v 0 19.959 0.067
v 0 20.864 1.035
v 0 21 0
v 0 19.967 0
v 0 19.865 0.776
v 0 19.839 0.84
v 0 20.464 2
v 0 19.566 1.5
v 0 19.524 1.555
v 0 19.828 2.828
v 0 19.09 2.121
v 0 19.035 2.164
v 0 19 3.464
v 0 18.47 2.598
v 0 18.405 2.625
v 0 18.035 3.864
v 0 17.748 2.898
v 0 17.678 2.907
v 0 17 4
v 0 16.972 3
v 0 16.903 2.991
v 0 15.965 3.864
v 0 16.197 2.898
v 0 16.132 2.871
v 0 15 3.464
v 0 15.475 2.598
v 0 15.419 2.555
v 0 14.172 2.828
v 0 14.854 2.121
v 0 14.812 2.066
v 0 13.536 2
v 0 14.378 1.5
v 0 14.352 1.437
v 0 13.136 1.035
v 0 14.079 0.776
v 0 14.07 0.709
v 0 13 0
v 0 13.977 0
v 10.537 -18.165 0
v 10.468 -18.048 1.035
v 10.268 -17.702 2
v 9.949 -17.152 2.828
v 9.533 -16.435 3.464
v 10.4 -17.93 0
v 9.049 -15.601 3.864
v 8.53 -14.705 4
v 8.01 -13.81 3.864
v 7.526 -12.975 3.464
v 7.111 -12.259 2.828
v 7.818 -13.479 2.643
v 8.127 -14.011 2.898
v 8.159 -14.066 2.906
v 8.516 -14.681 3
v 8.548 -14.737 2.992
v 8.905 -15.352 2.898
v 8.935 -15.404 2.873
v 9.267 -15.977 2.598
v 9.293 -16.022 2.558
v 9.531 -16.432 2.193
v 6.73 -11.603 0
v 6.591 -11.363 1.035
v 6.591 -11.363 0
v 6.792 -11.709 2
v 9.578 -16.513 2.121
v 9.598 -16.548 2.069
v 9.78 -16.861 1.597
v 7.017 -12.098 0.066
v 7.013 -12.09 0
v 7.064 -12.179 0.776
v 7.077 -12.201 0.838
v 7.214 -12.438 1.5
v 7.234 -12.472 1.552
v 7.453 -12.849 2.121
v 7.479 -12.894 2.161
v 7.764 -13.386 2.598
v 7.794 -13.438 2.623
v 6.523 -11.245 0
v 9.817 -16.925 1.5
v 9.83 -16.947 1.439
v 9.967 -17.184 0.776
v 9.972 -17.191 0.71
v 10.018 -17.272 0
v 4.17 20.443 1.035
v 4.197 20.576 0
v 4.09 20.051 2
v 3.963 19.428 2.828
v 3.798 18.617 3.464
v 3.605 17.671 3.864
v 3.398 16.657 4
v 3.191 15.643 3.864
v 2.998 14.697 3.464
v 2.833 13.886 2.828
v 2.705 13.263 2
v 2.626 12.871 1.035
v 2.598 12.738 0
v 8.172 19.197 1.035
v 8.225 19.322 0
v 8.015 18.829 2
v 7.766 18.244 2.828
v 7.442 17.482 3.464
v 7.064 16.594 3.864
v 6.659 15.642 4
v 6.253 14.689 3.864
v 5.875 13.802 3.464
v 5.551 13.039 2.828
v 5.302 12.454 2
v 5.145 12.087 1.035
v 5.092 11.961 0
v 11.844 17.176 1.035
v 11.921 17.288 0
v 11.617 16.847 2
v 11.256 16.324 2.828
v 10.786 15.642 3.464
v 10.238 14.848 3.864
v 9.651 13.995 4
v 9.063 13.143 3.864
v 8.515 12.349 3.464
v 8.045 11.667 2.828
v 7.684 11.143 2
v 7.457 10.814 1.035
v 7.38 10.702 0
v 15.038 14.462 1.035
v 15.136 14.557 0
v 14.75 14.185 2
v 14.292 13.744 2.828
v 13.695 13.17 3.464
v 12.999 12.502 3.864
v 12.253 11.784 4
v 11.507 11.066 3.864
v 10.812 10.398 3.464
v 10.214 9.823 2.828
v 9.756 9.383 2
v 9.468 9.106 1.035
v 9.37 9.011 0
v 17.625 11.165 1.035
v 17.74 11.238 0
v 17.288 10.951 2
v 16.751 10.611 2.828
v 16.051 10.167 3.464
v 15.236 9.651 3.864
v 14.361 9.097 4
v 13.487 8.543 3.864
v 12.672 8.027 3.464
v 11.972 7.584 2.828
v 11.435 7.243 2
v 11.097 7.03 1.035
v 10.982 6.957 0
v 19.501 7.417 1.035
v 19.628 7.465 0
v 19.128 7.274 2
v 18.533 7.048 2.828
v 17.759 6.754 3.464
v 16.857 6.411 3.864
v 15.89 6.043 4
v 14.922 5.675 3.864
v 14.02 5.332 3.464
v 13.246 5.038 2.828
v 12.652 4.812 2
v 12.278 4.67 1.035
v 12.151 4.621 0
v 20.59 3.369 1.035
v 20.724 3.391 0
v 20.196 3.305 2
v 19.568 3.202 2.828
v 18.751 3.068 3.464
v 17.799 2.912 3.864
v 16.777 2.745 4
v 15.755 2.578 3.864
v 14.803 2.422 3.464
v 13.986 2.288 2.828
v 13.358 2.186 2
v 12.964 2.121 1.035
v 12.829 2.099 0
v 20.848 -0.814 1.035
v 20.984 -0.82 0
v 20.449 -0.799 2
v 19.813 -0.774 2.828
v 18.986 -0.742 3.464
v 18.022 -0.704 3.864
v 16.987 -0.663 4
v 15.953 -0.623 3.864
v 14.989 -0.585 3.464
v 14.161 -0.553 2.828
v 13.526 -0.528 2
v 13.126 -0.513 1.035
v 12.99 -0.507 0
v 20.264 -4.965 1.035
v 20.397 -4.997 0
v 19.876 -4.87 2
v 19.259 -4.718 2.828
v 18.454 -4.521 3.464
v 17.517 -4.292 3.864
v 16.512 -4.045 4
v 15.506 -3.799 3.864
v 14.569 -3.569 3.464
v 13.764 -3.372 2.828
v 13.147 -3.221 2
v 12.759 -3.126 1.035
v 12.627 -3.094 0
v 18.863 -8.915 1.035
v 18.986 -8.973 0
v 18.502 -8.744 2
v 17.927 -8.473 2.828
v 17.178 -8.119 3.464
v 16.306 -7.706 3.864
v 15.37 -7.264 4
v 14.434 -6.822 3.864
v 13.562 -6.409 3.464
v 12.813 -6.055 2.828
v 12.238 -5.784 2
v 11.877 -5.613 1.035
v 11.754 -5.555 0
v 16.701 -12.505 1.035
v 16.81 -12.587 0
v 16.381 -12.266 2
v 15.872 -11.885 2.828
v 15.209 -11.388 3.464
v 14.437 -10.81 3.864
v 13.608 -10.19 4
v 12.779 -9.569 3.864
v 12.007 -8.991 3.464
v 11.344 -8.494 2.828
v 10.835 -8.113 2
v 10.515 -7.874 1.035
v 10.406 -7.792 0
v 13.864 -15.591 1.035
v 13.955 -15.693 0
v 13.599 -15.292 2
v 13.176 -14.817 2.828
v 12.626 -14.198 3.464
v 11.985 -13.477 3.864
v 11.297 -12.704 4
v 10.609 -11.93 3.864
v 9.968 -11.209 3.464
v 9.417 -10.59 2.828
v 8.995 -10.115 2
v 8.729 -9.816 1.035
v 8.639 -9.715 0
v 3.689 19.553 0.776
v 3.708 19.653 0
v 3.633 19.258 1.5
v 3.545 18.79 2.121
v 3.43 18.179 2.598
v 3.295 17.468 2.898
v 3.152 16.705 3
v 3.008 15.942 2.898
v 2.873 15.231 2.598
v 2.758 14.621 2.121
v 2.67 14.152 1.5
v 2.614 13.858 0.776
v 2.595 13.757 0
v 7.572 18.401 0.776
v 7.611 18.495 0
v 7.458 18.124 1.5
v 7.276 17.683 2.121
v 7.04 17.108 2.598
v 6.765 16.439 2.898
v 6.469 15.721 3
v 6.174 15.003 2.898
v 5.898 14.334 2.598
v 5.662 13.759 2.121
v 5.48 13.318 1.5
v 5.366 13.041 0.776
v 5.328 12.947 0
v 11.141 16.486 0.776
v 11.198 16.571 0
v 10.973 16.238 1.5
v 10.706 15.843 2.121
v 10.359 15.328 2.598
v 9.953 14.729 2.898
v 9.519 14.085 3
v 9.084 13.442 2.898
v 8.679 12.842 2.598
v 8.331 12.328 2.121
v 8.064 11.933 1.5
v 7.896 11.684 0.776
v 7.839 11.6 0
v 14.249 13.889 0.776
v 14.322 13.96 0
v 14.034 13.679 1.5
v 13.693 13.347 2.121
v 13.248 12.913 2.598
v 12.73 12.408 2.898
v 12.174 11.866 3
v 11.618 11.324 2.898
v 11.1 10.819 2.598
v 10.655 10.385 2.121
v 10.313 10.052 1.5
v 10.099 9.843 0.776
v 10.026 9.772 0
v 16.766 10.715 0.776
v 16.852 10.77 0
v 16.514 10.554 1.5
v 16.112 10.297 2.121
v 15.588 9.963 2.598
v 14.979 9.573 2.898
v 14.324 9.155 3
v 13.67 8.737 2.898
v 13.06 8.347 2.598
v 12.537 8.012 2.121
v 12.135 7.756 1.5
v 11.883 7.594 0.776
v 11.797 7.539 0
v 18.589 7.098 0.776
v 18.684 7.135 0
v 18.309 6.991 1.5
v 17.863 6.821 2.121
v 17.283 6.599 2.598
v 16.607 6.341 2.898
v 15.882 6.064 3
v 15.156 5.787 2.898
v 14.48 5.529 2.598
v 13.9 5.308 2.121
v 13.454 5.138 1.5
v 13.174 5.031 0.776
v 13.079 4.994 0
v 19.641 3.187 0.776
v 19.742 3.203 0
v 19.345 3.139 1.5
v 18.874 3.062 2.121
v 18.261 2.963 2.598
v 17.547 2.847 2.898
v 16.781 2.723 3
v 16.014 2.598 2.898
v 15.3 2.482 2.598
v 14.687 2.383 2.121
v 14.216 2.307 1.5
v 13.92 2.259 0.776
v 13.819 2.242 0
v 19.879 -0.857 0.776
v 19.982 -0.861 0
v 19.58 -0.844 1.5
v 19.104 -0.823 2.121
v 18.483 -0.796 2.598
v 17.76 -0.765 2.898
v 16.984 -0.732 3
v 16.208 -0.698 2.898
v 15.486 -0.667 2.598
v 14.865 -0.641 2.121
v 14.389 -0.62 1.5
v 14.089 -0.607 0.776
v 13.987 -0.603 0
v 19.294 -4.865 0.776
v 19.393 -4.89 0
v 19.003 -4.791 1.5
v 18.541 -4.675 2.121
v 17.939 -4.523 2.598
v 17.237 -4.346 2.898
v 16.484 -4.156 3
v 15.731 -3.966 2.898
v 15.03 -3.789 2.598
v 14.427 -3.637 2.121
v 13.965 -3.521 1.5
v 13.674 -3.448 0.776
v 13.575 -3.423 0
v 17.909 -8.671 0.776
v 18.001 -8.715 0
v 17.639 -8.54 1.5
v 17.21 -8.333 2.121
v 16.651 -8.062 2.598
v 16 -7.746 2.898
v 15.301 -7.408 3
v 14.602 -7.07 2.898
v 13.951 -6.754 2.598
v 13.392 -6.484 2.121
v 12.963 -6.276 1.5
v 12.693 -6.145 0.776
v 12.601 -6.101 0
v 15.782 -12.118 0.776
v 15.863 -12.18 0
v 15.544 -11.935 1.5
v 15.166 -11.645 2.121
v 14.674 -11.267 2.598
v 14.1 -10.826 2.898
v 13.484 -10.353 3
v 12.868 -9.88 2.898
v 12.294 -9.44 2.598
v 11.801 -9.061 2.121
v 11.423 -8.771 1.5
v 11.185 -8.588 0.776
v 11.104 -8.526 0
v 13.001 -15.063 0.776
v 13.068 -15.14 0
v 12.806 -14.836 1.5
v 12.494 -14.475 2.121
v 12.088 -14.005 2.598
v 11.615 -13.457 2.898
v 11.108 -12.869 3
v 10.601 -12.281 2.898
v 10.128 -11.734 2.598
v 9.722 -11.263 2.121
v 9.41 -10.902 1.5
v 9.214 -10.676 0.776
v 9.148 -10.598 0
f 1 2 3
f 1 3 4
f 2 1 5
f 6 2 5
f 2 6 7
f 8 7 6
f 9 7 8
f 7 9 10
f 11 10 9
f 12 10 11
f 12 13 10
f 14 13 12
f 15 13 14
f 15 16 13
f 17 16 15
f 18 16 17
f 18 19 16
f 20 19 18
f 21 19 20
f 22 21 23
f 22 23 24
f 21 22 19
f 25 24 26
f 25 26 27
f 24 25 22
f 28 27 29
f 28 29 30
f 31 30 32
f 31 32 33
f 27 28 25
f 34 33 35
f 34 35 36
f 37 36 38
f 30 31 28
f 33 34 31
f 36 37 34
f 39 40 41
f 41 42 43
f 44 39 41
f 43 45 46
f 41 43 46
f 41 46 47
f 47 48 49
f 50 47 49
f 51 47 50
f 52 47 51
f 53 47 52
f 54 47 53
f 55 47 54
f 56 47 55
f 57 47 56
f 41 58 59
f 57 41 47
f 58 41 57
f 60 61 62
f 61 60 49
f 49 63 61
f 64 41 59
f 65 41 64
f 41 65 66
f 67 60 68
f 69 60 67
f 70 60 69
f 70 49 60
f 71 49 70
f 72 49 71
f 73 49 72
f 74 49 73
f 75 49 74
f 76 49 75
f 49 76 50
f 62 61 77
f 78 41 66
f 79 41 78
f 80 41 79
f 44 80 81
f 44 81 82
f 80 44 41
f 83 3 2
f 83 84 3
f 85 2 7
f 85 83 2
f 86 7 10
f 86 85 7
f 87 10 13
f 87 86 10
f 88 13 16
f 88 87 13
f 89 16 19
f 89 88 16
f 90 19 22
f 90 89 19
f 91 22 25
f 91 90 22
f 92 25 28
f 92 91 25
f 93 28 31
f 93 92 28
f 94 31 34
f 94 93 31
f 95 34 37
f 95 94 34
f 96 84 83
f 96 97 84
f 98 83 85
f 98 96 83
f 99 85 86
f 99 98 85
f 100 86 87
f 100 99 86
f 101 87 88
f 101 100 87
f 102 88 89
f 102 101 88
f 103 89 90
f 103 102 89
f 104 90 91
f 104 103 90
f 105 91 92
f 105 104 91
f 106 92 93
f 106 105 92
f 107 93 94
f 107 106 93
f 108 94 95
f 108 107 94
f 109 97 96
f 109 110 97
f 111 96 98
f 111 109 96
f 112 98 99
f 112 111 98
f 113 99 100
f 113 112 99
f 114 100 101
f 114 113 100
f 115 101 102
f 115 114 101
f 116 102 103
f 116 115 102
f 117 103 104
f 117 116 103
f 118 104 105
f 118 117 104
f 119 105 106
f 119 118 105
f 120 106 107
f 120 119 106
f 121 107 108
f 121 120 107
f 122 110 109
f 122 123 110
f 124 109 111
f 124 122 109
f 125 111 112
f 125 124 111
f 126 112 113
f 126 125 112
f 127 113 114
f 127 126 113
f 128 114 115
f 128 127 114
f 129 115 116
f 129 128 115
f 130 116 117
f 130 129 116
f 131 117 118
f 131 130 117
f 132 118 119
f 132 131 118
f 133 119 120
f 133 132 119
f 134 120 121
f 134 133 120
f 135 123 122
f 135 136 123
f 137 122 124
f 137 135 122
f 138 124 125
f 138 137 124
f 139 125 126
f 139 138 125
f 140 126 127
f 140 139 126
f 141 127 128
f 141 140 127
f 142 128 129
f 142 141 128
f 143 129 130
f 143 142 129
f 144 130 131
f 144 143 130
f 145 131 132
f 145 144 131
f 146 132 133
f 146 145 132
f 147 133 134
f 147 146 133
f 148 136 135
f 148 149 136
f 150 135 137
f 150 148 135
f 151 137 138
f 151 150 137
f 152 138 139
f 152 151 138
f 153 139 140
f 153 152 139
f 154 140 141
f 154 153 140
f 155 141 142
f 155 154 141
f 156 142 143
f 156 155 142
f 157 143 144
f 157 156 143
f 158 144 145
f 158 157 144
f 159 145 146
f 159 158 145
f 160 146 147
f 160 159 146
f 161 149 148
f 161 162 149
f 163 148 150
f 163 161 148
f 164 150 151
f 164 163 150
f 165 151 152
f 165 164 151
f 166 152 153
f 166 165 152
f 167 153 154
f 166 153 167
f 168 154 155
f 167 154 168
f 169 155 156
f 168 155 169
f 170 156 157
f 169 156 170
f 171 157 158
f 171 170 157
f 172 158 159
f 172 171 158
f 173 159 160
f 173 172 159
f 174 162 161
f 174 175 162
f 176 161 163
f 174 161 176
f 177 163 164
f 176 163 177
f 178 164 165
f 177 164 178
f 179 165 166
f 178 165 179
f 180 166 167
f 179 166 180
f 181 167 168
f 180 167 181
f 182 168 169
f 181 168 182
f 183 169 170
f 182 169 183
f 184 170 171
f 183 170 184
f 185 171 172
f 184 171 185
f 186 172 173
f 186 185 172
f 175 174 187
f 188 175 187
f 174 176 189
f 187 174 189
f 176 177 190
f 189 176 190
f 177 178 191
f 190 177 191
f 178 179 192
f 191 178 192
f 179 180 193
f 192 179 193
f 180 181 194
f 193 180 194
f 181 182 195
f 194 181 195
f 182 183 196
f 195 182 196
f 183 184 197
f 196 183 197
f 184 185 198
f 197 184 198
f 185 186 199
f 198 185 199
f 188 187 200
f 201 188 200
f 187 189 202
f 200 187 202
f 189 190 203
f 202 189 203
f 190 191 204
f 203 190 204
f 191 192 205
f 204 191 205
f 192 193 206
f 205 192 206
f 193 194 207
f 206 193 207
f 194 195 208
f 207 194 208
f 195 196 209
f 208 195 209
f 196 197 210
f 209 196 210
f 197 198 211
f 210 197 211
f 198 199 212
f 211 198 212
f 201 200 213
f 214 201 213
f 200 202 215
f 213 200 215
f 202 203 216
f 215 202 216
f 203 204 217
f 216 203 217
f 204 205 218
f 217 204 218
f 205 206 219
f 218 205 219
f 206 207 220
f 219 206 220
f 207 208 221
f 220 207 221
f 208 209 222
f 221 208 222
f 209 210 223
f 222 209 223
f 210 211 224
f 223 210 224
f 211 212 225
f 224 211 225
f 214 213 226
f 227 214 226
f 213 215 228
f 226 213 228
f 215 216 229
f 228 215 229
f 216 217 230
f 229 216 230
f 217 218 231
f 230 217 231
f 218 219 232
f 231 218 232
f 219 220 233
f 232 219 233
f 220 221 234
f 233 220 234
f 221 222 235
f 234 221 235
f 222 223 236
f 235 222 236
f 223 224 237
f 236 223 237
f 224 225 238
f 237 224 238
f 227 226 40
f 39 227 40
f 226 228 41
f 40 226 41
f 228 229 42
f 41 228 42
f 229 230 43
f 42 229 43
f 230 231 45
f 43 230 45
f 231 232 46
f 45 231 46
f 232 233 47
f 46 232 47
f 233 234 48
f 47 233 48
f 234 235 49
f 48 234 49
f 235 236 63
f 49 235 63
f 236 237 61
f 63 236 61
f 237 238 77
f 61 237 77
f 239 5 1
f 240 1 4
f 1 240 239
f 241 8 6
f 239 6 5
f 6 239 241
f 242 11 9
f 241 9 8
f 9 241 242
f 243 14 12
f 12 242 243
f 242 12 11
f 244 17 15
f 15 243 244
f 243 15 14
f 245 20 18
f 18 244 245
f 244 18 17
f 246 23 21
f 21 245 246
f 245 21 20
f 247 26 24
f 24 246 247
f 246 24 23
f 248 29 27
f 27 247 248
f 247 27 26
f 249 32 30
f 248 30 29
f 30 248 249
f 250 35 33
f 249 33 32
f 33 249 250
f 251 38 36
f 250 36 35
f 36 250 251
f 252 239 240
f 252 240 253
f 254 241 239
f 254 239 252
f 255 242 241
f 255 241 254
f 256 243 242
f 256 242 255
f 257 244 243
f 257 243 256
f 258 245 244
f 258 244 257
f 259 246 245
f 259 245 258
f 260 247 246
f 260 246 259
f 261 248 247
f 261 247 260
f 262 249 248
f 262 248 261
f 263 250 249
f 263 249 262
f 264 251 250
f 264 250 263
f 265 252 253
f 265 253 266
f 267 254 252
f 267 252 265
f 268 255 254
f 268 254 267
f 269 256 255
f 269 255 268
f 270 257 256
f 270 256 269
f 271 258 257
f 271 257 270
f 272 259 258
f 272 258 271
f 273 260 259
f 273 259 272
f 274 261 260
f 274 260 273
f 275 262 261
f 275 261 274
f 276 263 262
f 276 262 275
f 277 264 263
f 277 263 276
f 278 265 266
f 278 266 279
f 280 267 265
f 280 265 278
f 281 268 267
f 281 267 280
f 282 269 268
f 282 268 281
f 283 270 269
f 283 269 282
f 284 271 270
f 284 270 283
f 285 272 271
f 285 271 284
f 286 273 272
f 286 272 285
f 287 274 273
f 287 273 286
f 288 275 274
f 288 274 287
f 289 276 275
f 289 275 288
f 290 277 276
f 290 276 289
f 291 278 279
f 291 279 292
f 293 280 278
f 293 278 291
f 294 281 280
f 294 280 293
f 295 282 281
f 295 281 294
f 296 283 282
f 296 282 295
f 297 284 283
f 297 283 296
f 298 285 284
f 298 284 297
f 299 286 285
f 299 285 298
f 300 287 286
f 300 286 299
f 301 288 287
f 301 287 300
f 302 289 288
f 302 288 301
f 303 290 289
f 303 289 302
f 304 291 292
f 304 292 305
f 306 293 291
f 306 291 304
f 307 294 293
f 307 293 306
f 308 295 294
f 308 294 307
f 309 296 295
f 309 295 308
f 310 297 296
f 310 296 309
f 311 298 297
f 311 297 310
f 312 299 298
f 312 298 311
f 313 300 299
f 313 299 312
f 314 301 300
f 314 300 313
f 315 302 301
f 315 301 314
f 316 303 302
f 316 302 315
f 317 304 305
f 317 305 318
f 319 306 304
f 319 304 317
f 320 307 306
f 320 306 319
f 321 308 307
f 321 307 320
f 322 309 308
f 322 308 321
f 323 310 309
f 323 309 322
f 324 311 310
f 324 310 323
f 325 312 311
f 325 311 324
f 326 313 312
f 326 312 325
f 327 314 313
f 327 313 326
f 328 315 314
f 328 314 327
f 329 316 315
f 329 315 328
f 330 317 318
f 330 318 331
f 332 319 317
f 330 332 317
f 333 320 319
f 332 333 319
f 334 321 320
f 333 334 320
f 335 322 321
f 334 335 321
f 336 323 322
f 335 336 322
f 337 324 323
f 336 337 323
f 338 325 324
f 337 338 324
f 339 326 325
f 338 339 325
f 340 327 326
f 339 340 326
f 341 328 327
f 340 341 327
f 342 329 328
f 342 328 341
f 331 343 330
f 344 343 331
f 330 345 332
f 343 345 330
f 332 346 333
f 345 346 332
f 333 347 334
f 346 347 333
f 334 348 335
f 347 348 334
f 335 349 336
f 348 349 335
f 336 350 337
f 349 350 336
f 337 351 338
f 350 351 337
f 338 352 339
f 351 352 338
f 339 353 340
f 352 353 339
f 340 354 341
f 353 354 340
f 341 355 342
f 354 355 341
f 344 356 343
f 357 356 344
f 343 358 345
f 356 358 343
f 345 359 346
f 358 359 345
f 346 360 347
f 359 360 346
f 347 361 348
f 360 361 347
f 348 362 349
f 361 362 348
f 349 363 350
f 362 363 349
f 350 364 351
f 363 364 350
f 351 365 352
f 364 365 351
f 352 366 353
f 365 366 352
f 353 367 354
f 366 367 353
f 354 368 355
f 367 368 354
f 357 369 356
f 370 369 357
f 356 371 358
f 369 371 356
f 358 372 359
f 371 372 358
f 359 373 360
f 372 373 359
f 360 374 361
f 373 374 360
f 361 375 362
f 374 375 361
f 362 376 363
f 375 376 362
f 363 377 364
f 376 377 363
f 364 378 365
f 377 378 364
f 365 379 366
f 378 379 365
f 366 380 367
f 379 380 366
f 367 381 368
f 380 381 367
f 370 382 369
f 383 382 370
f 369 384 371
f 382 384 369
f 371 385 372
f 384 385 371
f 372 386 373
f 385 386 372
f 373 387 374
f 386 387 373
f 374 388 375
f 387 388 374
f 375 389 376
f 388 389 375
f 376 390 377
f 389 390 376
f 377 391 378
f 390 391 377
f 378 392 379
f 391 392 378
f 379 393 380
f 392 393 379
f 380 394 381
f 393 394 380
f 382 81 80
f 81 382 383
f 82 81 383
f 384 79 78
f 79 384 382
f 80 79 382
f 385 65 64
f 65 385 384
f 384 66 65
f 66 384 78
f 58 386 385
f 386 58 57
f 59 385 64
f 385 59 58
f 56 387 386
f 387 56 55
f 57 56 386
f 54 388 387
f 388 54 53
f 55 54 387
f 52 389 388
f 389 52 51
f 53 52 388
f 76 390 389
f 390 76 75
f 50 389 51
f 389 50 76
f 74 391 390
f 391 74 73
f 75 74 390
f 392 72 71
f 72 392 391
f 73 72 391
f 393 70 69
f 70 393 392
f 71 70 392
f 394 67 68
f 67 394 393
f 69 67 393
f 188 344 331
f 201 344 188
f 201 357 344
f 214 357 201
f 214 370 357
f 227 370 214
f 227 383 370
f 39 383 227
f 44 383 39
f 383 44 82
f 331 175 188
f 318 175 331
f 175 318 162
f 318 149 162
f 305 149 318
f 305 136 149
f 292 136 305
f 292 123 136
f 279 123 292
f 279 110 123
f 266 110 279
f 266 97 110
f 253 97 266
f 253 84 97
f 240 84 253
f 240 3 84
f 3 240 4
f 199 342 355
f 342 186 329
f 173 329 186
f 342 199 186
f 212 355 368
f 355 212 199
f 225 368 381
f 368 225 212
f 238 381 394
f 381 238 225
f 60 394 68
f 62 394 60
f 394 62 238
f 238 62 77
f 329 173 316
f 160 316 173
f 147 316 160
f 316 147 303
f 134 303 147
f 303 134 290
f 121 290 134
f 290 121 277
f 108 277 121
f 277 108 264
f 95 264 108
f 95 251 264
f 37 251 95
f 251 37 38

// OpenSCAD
// file: ../build_environments.scad
// build_environments.scad: modules to build level sections
//

module pool(diameter=10.0, wall_height=2.0, step_width=3.0, connections=[])
{
    difference() {
        union() {
        difference() {
            cylinder(h=0.5,r1=diameter+step_width,r2=diameter+step_width,$fn=48);
            translate([0,0,-0.1])
                cylinder(h=0.7,r1=diameter,r2=diameter,$fn=48);
        }
        difference() {
            cylinder(h=wall_height,r1=diameter+step_width+1.0,r2=diameter+step_width+1.0,$fn=48);
            translate([0,0,-0.1])
                cylinder(h=wall_height+0.2,r1=diameter+step_width,r2=diameter+step_width,$fn=48);
        }
        }
    
        for (c = connections)
        {
            rotate([0,90,0]) {
                angle = atan2(c[1],c[0]);
                rotate([-angle,0,0]) {
                    cylinder(h=diameter+5.0,r1=c[2],r2=c[2],$fn=48);
                }
            }
        }
    }
}

module straight(length=10.0, width=2.0, dy1=0.0, dy2=0.0, dz=0.0)
{
    dims = [0, 0, 0, 0, 0, (dz/length)];
    matrix = [
        [ 1, dims[0], dims[1], 0 ],
        [ dims[2], 1, dims[4], 0 ],
        [ dims[5], dims[3], 1, 0 ],
        [ 0, 0, 0, 1 ]
    ];
    multmatrix(matrix)
    difference() {
        translate([dy1,0,0])
        union() {
            rotate([0,90,0]) {
                difference() {
                    cylinder(h=(length-dy1-dy2),r1=width+1.0,r2=width+1.0,$fn=24);
                    translate([0,0,-0.1])
                        cylinder(h=(length-dy1-dy2+0.2),r1=width,r2=width,$fn=24);
                }
                difference() {
                    cylinder(h=1.0,r1=width+2.0,r2=width+2.0,$fn=24);
                    translate([0,0,-0.1])
                        cylinder(h=1.2,r1=width,r2=width,$fn=24);
                }
                translate([0,0,(length-dy1-dy2)-1.0]) {
                    difference() {
                        cylinder(h=1.0,r1=width+2.0,r2=width+2.0,$fn=24);
                        translate([0,0,-0.1])
                            cylinder(h=1.2,r1=width,r2=width,$fn=24);
                    }
                }
            }
        }
        translate([0,0,-(2*width+4.0)/2])
            cube([3*length,3*length,2*width+4.0],center=true);
    }
}

module curve(p0=[0,0], center=[0,0], dir=1, angle=0.0, width=2.0)
{
    radius = sqrt((p0[0]-center[0])*(p0[0]-center[0]) + (p0[1]-center[1])*(p0[1]-center[1]));
    if (dir == 0) {
        difference() {
            rotate([0,0,-90])
            difference() {
                rotate_extrude(angle = angle, convexity = 10, $fn=32)
                    translate([radius, 0, 0])
                        circle(r = width+1.0,$fn=24);
                rotate([0,0,-1.0])
                    rotate_extrude(angle = angle+2.0, convexity = 10, $fn=32)
                        translate([radius, 0, 0])
                            circle(r = width,$fn=24);
            }
            translate([0,0,-(2*width+4.0)/2])
                cube([5*radius,5*radius,2*width+4.0],center=true);
        }
    }
    else {
        difference() {
            rotate([0,0,90])
            difference() {
                rotate_extrude(angle = -angle, convexity = 10, $fn=32)
                    translate([radius, 0, 0])
                        circle(r = width+1.0,$fn=24);
                rotate([0,0,1.0])
                    rotate_extrude(angle = -angle-2.0, convexity = 10, $fn=32)
                        translate([radius, 0, 0])
                            circle(r = width,$fn=24);
            }
            translate([0,0,-(2*width+4.0)/2])
                cube([5*radius,5*radius,2*width+4.0],center=true);
        }
    }

}

// test pool
//pool(diameter=12.0000, wall_height=3.0000, step_width=3.0000, connections=[[0.0000,-26.0000,2.0000], [23.6074,0.0000,2.0000]]);

// test straight, slope
//straight(length=26.0000, width=2.0000, dy1=11.8322, dy2=6.7082, dz=0.0000);
//straight(length=29.1549, width=12.0000, dy1=0.0000, dy2=0.0000, dz=-15.0000);

// test curve
//curve(p0=[23.6074, 0.0000], center=[23.6074, 5.0000], dir=0, angle=60.1011, width=2.0000);
//curve(p0=[33.6426, 12.4219], center=[37.9771, 9.9295], dir=1, angle=120.4627, width=2.0000);
// main file
use <../build_environments.scad>;
curve(p0=[-99.8825, -88.5896], center=[-94.1289, -72.5928], dir=1, angle=149.8846, width=3.0000);
